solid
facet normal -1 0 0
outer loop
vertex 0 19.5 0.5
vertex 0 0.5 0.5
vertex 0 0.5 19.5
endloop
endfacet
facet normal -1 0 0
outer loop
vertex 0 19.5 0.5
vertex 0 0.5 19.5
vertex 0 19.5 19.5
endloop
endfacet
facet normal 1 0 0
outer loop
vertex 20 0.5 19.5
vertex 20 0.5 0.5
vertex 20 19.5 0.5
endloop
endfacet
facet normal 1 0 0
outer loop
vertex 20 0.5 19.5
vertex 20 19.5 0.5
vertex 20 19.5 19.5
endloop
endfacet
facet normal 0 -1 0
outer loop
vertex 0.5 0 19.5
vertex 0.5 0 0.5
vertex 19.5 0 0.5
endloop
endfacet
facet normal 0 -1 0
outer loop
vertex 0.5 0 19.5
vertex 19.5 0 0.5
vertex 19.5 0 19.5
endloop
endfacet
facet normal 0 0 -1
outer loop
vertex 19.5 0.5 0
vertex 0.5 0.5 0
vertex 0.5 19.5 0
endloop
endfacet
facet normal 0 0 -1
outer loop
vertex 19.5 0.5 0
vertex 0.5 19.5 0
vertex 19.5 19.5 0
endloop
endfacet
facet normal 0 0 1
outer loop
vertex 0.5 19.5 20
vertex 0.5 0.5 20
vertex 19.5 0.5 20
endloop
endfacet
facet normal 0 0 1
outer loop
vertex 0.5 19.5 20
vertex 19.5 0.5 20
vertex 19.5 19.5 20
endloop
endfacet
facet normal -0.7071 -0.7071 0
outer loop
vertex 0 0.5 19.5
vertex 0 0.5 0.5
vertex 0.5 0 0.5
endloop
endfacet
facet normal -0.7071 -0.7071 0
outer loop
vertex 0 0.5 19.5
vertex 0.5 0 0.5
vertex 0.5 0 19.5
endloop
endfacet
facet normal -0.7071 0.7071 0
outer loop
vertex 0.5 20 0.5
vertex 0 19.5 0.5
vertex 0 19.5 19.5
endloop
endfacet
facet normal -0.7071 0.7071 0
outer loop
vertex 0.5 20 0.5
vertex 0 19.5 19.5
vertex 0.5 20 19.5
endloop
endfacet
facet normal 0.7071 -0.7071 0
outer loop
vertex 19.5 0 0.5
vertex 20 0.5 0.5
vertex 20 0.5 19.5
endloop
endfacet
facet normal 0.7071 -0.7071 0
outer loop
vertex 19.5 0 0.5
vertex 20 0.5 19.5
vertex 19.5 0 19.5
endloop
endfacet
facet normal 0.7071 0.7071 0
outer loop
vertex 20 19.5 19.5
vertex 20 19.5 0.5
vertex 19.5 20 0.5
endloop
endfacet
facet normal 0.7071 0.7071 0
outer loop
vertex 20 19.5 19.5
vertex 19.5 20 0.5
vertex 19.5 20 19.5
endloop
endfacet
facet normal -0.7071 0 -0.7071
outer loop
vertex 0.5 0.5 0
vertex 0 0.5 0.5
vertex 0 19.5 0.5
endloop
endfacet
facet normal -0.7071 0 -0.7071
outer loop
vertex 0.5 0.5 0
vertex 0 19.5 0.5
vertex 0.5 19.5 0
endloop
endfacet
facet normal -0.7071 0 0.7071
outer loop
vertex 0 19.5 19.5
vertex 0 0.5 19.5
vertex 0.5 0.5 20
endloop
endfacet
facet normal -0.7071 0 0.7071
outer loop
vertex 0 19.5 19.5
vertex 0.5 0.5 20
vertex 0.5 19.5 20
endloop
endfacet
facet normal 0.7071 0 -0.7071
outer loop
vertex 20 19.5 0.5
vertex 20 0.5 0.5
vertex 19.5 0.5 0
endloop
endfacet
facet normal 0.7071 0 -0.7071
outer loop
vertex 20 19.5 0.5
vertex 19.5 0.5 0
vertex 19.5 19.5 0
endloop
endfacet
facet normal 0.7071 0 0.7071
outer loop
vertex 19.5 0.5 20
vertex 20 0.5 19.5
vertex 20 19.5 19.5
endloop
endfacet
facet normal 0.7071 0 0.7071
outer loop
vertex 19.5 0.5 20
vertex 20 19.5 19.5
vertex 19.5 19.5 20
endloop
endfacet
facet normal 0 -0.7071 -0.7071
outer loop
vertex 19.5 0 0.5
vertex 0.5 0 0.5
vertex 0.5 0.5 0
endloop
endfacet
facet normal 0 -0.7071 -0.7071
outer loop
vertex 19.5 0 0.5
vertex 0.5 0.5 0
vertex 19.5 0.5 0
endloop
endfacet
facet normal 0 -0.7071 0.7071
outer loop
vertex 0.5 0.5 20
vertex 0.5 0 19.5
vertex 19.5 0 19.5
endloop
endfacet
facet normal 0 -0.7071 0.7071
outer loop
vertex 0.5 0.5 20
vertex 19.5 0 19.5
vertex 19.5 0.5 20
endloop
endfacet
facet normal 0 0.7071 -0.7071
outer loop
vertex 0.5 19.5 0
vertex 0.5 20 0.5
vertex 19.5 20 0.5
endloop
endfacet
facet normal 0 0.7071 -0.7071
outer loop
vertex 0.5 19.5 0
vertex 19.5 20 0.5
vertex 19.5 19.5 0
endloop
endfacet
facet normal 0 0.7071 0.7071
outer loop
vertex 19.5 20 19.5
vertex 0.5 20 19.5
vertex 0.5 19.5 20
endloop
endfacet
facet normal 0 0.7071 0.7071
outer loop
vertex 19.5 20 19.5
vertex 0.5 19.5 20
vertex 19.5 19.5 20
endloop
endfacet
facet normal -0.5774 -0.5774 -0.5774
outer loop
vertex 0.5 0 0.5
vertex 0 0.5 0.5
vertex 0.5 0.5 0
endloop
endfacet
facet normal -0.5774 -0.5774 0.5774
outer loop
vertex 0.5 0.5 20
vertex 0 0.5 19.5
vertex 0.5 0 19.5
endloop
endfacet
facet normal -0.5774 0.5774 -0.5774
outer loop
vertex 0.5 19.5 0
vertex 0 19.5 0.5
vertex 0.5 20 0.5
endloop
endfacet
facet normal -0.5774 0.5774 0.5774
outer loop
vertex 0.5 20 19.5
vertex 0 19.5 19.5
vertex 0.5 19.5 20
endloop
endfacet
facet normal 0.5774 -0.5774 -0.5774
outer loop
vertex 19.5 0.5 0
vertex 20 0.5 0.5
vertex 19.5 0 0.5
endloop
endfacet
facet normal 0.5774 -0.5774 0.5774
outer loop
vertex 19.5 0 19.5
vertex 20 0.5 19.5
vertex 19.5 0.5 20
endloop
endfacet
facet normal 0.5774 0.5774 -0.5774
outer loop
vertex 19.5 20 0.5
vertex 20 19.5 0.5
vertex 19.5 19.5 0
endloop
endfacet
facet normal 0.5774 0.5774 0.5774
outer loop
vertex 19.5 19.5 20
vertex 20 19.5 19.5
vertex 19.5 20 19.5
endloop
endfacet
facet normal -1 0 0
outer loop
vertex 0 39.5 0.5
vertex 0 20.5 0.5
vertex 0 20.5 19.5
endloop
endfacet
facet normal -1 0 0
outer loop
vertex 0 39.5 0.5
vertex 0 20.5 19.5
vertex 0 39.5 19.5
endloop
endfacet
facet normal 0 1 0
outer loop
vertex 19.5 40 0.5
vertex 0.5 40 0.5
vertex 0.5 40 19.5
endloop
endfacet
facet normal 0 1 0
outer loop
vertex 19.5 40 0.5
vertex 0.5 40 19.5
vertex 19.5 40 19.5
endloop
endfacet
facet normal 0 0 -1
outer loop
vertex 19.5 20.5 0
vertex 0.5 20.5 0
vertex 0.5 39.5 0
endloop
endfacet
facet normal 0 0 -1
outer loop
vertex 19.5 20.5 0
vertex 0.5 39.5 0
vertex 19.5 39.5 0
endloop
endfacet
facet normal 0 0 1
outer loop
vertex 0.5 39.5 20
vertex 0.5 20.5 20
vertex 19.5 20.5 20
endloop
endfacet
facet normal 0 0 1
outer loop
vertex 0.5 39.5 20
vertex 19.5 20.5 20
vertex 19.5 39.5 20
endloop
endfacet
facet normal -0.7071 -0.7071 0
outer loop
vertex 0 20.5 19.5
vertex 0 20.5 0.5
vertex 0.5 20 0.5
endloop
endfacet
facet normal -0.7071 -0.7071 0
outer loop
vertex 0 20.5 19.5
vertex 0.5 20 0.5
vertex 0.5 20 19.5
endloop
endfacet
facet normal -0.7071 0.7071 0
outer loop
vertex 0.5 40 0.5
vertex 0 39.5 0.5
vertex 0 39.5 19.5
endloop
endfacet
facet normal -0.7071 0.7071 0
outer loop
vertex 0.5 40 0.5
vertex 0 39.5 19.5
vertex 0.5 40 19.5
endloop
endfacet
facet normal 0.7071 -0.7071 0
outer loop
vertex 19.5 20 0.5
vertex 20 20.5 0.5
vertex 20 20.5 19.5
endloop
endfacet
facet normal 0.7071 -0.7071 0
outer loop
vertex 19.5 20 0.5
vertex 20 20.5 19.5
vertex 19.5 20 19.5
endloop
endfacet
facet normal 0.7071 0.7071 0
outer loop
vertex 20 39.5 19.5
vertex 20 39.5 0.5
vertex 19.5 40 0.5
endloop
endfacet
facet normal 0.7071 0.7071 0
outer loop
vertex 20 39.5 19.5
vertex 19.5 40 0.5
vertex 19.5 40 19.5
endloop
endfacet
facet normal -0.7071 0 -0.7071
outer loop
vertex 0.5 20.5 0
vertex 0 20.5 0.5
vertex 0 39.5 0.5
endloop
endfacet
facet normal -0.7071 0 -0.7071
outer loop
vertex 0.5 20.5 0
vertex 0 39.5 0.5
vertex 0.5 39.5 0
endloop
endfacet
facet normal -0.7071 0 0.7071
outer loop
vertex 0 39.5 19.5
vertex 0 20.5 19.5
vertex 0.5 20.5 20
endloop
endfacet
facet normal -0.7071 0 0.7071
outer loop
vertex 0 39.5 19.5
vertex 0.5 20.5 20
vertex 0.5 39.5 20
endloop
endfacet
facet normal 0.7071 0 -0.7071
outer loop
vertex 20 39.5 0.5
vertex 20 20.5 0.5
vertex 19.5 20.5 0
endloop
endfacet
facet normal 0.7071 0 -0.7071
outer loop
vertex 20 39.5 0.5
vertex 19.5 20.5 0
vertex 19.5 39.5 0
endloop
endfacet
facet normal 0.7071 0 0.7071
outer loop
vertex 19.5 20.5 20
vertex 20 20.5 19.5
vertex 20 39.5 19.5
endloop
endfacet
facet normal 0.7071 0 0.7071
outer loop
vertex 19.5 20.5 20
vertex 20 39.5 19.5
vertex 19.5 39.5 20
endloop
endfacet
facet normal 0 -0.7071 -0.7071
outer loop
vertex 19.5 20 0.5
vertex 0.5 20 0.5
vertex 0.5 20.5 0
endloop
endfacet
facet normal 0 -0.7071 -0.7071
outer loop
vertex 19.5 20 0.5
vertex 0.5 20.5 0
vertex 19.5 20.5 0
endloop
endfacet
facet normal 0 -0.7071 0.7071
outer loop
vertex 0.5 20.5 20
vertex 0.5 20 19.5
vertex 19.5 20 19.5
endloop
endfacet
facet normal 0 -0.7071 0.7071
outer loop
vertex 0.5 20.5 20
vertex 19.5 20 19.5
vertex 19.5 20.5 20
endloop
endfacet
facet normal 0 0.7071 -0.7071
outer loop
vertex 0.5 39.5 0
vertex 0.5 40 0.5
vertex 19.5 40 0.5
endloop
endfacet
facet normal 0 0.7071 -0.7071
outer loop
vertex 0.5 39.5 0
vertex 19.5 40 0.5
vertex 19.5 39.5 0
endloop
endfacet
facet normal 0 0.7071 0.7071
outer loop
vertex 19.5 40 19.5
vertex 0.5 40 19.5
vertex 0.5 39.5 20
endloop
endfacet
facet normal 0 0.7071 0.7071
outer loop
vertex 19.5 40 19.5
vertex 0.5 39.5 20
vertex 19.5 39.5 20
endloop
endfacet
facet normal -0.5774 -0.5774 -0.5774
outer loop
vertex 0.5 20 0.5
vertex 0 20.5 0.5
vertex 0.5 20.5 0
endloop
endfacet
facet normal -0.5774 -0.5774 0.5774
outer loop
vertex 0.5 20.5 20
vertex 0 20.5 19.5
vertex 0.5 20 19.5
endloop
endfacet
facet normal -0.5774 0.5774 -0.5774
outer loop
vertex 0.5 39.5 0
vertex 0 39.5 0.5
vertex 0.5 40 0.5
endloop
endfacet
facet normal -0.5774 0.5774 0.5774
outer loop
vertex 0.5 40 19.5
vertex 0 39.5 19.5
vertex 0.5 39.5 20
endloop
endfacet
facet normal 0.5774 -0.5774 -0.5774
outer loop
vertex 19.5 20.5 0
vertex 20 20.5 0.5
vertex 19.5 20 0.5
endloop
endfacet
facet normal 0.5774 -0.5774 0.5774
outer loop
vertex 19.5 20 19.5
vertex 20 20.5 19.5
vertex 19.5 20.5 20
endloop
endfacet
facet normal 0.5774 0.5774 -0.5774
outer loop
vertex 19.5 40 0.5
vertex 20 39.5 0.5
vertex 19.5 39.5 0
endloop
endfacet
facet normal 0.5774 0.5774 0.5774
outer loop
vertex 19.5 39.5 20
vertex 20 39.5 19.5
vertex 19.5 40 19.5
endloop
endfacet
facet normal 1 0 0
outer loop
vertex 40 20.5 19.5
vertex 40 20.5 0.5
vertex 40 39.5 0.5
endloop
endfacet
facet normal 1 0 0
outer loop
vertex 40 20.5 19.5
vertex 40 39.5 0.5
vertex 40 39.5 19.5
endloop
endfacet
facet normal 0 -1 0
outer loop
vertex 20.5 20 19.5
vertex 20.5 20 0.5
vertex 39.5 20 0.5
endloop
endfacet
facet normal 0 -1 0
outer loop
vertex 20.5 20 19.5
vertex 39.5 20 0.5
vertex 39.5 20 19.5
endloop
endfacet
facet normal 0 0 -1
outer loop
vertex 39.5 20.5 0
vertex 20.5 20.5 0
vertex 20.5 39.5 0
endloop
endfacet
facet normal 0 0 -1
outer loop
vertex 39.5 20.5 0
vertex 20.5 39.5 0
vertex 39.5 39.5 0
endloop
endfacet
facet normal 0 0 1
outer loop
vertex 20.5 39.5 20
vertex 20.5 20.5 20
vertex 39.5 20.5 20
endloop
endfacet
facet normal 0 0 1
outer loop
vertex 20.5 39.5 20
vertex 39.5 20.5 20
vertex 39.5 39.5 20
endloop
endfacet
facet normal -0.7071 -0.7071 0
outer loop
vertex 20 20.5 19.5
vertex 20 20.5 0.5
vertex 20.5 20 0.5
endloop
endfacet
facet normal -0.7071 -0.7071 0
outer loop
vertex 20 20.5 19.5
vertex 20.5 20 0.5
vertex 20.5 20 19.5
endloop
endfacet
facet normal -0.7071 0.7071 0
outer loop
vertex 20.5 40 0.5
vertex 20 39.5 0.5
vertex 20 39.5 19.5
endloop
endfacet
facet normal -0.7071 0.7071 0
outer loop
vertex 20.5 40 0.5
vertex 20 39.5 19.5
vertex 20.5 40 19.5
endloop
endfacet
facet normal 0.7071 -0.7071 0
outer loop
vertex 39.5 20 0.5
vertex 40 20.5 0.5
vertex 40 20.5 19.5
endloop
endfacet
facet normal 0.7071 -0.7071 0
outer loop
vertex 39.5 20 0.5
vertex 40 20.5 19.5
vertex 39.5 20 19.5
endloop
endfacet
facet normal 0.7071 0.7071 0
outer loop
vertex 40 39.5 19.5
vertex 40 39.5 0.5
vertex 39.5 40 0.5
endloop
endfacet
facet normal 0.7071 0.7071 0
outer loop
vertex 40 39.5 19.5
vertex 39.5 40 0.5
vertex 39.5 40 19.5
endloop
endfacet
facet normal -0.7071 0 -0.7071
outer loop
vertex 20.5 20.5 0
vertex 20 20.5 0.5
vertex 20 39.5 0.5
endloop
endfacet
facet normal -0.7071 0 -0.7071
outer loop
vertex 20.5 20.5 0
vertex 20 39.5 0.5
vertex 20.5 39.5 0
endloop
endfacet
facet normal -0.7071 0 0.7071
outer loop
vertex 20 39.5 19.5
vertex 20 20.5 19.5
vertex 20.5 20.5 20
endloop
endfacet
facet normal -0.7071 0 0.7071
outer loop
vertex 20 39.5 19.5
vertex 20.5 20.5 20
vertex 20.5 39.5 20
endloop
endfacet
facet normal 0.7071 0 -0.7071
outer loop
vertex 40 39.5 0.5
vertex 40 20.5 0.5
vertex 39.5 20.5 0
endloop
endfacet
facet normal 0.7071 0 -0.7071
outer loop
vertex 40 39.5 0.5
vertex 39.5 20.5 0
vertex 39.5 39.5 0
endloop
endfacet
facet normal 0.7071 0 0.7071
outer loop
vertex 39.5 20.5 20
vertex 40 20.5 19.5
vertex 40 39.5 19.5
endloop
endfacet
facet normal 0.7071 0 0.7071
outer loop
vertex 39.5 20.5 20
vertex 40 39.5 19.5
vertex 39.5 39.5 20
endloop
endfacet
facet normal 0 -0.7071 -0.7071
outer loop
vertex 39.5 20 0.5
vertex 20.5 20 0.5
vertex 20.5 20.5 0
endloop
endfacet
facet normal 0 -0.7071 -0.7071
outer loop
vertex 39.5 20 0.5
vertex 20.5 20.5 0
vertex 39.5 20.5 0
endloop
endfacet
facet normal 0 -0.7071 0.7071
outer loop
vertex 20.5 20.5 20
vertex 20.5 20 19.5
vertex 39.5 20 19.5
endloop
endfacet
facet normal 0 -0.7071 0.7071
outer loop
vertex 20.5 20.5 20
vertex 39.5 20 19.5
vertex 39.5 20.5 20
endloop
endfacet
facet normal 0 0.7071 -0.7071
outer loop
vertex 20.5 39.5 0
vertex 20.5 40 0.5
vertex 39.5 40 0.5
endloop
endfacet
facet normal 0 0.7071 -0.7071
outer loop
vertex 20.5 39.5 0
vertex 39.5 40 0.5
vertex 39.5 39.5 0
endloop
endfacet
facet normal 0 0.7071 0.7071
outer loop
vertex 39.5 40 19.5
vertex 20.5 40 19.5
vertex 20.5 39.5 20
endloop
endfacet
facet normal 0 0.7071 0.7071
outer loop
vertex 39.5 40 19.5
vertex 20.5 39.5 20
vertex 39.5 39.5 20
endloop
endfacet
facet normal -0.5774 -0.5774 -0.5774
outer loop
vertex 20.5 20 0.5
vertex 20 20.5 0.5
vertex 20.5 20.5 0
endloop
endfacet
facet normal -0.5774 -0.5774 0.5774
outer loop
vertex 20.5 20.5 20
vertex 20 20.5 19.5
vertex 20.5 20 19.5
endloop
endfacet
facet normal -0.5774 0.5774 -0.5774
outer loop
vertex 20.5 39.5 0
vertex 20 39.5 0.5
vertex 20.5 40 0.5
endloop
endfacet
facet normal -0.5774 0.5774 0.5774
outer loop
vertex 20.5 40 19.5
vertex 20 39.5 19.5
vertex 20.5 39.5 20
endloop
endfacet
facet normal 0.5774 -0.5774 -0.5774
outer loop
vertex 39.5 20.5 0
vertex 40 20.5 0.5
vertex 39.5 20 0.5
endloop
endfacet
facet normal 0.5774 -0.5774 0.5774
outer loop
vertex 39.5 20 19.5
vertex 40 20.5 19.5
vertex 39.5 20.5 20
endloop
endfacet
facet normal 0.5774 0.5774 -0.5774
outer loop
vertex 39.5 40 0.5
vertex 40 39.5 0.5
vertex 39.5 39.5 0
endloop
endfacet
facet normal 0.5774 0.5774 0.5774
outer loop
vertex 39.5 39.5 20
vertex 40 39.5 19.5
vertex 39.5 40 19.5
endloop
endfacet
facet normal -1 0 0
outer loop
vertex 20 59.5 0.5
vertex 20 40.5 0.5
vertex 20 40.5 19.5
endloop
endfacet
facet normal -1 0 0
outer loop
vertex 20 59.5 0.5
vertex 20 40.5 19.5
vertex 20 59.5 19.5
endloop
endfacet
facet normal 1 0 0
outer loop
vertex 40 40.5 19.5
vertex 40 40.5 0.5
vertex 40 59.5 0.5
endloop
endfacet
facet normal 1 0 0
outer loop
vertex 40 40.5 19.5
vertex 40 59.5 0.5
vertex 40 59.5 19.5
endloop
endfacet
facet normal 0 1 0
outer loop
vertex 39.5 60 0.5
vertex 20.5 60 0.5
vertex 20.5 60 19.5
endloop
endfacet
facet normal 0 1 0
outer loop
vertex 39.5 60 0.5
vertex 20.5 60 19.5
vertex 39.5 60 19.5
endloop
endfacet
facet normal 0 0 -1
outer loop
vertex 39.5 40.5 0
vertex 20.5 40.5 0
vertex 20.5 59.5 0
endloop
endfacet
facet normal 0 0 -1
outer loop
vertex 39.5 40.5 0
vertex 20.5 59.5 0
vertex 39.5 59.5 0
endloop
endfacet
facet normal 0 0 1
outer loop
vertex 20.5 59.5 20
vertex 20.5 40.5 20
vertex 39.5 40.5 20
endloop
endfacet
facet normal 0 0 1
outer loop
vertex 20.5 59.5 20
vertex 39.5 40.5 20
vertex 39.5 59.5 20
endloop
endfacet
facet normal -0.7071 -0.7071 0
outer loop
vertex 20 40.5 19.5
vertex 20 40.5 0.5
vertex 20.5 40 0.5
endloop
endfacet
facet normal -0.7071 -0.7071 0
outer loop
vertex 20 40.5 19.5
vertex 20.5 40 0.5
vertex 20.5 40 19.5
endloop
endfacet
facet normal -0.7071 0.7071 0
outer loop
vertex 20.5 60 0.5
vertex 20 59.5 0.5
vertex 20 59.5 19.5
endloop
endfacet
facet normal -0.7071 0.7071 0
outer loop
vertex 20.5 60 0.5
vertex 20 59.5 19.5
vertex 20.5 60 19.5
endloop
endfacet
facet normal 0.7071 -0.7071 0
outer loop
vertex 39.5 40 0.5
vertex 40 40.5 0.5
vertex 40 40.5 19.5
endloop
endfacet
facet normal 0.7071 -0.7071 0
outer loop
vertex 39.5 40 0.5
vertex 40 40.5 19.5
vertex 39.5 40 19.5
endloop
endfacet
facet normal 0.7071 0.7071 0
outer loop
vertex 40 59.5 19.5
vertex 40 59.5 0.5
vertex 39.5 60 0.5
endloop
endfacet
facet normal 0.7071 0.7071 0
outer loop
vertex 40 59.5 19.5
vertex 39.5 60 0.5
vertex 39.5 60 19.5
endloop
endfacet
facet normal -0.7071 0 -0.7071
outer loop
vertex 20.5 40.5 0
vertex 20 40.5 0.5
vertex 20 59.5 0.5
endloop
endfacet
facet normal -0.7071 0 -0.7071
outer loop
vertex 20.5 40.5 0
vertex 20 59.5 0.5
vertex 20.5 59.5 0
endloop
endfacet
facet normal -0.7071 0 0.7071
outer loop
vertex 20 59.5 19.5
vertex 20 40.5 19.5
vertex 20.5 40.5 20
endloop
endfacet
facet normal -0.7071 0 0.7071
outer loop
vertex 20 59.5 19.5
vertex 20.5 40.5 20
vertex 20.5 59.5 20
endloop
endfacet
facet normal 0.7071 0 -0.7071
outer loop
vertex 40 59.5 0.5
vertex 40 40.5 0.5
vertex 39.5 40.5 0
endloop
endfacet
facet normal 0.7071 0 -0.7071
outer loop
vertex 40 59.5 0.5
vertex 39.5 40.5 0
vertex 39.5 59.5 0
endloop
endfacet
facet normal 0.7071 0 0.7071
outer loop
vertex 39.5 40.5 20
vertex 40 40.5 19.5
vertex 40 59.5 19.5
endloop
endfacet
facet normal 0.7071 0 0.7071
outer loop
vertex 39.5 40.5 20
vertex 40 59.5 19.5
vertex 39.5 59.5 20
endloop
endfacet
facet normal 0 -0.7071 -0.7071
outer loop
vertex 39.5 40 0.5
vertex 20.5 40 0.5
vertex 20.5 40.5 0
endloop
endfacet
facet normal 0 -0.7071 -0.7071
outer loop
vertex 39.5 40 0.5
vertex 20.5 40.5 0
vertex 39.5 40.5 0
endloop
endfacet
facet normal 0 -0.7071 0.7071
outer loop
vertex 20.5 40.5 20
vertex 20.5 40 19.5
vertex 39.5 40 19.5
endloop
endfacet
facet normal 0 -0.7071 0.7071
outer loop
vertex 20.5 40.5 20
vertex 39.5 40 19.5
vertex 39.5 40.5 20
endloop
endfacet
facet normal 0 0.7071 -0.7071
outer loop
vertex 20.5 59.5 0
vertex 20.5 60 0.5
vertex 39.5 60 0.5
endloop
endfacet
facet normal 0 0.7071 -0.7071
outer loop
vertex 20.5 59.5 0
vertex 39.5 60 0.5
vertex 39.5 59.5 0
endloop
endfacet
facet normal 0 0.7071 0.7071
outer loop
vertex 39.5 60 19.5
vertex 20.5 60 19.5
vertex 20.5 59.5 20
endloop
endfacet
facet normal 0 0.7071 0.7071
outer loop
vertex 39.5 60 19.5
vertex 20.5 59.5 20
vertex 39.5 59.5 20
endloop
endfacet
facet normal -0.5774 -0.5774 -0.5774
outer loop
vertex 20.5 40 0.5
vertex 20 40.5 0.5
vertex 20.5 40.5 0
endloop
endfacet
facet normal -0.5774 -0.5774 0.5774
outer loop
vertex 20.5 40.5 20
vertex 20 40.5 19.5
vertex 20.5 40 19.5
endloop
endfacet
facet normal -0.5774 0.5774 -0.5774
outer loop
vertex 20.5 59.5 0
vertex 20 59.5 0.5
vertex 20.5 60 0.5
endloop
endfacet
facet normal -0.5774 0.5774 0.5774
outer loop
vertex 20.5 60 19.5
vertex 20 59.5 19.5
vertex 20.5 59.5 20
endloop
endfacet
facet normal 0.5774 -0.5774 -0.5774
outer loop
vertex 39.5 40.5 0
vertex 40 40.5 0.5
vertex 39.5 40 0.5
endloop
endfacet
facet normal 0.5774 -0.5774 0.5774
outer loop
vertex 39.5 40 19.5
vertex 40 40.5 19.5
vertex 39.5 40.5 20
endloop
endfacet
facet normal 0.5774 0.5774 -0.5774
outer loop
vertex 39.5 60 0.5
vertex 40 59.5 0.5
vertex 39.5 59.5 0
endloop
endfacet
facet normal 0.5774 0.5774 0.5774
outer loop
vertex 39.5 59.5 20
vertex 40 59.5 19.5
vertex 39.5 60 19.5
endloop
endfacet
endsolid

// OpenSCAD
// Wongo piece 12: Zigzag. GPL-3.0; see README.txt.
// 0.5 mm chamfer at the default 20 mm pitch; unit scales everything.
unit = 20;
positions = [[0,0,0],[0,1,0],[1,1,0],[1,2,0]];
union() { for (p = positions) translate(p * unit) { scale([unit,unit,unit]) polyhedron(points=[[0,0.025,0.025],[0,0.025,0.975],[0,0.975,0.025],[0,0.975,0.975],[1,0.025,0.025],[1,0.025,0.975],[1,0.975,0.025],[1,0.975,0.975],[0.025,0,0.025],[0.025,0,0.975],[0.975,0,0.025],[0.975,0,0.975],[0.025,1,0.025],[0.025,1,0.975],[0.975,1,0.025],[0.975,1,0.975],[0.025,0.025,0],[0.025,0.975,0],[0.975,0.025,0],[0.975,0.975,0],[0.025,0.025,1],[0.025,0.975,1],[0.975,0.025,1],[0.975,0.975,1]], faces=[[3,1,0,2],[7,6,4,5],[11,10,8,9],[15,13,12,14],[19,17,16,18],[23,22,20,21],[9,8,0,1],[13,3,2,12],[11,5,4,10],[15,14,6,7],[17,2,0,16],[21,20,1,3],[19,18,4,6],[23,7,5,22],[18,16,8,10],[22,11,9,20],[19,14,12,17],[23,21,13,15],[16,0,8],[9,1,20],[12,2,17],[21,3,13],[10,4,18],[22,5,11],[19,6,14],[15,7,23]], convexity=10); } }
